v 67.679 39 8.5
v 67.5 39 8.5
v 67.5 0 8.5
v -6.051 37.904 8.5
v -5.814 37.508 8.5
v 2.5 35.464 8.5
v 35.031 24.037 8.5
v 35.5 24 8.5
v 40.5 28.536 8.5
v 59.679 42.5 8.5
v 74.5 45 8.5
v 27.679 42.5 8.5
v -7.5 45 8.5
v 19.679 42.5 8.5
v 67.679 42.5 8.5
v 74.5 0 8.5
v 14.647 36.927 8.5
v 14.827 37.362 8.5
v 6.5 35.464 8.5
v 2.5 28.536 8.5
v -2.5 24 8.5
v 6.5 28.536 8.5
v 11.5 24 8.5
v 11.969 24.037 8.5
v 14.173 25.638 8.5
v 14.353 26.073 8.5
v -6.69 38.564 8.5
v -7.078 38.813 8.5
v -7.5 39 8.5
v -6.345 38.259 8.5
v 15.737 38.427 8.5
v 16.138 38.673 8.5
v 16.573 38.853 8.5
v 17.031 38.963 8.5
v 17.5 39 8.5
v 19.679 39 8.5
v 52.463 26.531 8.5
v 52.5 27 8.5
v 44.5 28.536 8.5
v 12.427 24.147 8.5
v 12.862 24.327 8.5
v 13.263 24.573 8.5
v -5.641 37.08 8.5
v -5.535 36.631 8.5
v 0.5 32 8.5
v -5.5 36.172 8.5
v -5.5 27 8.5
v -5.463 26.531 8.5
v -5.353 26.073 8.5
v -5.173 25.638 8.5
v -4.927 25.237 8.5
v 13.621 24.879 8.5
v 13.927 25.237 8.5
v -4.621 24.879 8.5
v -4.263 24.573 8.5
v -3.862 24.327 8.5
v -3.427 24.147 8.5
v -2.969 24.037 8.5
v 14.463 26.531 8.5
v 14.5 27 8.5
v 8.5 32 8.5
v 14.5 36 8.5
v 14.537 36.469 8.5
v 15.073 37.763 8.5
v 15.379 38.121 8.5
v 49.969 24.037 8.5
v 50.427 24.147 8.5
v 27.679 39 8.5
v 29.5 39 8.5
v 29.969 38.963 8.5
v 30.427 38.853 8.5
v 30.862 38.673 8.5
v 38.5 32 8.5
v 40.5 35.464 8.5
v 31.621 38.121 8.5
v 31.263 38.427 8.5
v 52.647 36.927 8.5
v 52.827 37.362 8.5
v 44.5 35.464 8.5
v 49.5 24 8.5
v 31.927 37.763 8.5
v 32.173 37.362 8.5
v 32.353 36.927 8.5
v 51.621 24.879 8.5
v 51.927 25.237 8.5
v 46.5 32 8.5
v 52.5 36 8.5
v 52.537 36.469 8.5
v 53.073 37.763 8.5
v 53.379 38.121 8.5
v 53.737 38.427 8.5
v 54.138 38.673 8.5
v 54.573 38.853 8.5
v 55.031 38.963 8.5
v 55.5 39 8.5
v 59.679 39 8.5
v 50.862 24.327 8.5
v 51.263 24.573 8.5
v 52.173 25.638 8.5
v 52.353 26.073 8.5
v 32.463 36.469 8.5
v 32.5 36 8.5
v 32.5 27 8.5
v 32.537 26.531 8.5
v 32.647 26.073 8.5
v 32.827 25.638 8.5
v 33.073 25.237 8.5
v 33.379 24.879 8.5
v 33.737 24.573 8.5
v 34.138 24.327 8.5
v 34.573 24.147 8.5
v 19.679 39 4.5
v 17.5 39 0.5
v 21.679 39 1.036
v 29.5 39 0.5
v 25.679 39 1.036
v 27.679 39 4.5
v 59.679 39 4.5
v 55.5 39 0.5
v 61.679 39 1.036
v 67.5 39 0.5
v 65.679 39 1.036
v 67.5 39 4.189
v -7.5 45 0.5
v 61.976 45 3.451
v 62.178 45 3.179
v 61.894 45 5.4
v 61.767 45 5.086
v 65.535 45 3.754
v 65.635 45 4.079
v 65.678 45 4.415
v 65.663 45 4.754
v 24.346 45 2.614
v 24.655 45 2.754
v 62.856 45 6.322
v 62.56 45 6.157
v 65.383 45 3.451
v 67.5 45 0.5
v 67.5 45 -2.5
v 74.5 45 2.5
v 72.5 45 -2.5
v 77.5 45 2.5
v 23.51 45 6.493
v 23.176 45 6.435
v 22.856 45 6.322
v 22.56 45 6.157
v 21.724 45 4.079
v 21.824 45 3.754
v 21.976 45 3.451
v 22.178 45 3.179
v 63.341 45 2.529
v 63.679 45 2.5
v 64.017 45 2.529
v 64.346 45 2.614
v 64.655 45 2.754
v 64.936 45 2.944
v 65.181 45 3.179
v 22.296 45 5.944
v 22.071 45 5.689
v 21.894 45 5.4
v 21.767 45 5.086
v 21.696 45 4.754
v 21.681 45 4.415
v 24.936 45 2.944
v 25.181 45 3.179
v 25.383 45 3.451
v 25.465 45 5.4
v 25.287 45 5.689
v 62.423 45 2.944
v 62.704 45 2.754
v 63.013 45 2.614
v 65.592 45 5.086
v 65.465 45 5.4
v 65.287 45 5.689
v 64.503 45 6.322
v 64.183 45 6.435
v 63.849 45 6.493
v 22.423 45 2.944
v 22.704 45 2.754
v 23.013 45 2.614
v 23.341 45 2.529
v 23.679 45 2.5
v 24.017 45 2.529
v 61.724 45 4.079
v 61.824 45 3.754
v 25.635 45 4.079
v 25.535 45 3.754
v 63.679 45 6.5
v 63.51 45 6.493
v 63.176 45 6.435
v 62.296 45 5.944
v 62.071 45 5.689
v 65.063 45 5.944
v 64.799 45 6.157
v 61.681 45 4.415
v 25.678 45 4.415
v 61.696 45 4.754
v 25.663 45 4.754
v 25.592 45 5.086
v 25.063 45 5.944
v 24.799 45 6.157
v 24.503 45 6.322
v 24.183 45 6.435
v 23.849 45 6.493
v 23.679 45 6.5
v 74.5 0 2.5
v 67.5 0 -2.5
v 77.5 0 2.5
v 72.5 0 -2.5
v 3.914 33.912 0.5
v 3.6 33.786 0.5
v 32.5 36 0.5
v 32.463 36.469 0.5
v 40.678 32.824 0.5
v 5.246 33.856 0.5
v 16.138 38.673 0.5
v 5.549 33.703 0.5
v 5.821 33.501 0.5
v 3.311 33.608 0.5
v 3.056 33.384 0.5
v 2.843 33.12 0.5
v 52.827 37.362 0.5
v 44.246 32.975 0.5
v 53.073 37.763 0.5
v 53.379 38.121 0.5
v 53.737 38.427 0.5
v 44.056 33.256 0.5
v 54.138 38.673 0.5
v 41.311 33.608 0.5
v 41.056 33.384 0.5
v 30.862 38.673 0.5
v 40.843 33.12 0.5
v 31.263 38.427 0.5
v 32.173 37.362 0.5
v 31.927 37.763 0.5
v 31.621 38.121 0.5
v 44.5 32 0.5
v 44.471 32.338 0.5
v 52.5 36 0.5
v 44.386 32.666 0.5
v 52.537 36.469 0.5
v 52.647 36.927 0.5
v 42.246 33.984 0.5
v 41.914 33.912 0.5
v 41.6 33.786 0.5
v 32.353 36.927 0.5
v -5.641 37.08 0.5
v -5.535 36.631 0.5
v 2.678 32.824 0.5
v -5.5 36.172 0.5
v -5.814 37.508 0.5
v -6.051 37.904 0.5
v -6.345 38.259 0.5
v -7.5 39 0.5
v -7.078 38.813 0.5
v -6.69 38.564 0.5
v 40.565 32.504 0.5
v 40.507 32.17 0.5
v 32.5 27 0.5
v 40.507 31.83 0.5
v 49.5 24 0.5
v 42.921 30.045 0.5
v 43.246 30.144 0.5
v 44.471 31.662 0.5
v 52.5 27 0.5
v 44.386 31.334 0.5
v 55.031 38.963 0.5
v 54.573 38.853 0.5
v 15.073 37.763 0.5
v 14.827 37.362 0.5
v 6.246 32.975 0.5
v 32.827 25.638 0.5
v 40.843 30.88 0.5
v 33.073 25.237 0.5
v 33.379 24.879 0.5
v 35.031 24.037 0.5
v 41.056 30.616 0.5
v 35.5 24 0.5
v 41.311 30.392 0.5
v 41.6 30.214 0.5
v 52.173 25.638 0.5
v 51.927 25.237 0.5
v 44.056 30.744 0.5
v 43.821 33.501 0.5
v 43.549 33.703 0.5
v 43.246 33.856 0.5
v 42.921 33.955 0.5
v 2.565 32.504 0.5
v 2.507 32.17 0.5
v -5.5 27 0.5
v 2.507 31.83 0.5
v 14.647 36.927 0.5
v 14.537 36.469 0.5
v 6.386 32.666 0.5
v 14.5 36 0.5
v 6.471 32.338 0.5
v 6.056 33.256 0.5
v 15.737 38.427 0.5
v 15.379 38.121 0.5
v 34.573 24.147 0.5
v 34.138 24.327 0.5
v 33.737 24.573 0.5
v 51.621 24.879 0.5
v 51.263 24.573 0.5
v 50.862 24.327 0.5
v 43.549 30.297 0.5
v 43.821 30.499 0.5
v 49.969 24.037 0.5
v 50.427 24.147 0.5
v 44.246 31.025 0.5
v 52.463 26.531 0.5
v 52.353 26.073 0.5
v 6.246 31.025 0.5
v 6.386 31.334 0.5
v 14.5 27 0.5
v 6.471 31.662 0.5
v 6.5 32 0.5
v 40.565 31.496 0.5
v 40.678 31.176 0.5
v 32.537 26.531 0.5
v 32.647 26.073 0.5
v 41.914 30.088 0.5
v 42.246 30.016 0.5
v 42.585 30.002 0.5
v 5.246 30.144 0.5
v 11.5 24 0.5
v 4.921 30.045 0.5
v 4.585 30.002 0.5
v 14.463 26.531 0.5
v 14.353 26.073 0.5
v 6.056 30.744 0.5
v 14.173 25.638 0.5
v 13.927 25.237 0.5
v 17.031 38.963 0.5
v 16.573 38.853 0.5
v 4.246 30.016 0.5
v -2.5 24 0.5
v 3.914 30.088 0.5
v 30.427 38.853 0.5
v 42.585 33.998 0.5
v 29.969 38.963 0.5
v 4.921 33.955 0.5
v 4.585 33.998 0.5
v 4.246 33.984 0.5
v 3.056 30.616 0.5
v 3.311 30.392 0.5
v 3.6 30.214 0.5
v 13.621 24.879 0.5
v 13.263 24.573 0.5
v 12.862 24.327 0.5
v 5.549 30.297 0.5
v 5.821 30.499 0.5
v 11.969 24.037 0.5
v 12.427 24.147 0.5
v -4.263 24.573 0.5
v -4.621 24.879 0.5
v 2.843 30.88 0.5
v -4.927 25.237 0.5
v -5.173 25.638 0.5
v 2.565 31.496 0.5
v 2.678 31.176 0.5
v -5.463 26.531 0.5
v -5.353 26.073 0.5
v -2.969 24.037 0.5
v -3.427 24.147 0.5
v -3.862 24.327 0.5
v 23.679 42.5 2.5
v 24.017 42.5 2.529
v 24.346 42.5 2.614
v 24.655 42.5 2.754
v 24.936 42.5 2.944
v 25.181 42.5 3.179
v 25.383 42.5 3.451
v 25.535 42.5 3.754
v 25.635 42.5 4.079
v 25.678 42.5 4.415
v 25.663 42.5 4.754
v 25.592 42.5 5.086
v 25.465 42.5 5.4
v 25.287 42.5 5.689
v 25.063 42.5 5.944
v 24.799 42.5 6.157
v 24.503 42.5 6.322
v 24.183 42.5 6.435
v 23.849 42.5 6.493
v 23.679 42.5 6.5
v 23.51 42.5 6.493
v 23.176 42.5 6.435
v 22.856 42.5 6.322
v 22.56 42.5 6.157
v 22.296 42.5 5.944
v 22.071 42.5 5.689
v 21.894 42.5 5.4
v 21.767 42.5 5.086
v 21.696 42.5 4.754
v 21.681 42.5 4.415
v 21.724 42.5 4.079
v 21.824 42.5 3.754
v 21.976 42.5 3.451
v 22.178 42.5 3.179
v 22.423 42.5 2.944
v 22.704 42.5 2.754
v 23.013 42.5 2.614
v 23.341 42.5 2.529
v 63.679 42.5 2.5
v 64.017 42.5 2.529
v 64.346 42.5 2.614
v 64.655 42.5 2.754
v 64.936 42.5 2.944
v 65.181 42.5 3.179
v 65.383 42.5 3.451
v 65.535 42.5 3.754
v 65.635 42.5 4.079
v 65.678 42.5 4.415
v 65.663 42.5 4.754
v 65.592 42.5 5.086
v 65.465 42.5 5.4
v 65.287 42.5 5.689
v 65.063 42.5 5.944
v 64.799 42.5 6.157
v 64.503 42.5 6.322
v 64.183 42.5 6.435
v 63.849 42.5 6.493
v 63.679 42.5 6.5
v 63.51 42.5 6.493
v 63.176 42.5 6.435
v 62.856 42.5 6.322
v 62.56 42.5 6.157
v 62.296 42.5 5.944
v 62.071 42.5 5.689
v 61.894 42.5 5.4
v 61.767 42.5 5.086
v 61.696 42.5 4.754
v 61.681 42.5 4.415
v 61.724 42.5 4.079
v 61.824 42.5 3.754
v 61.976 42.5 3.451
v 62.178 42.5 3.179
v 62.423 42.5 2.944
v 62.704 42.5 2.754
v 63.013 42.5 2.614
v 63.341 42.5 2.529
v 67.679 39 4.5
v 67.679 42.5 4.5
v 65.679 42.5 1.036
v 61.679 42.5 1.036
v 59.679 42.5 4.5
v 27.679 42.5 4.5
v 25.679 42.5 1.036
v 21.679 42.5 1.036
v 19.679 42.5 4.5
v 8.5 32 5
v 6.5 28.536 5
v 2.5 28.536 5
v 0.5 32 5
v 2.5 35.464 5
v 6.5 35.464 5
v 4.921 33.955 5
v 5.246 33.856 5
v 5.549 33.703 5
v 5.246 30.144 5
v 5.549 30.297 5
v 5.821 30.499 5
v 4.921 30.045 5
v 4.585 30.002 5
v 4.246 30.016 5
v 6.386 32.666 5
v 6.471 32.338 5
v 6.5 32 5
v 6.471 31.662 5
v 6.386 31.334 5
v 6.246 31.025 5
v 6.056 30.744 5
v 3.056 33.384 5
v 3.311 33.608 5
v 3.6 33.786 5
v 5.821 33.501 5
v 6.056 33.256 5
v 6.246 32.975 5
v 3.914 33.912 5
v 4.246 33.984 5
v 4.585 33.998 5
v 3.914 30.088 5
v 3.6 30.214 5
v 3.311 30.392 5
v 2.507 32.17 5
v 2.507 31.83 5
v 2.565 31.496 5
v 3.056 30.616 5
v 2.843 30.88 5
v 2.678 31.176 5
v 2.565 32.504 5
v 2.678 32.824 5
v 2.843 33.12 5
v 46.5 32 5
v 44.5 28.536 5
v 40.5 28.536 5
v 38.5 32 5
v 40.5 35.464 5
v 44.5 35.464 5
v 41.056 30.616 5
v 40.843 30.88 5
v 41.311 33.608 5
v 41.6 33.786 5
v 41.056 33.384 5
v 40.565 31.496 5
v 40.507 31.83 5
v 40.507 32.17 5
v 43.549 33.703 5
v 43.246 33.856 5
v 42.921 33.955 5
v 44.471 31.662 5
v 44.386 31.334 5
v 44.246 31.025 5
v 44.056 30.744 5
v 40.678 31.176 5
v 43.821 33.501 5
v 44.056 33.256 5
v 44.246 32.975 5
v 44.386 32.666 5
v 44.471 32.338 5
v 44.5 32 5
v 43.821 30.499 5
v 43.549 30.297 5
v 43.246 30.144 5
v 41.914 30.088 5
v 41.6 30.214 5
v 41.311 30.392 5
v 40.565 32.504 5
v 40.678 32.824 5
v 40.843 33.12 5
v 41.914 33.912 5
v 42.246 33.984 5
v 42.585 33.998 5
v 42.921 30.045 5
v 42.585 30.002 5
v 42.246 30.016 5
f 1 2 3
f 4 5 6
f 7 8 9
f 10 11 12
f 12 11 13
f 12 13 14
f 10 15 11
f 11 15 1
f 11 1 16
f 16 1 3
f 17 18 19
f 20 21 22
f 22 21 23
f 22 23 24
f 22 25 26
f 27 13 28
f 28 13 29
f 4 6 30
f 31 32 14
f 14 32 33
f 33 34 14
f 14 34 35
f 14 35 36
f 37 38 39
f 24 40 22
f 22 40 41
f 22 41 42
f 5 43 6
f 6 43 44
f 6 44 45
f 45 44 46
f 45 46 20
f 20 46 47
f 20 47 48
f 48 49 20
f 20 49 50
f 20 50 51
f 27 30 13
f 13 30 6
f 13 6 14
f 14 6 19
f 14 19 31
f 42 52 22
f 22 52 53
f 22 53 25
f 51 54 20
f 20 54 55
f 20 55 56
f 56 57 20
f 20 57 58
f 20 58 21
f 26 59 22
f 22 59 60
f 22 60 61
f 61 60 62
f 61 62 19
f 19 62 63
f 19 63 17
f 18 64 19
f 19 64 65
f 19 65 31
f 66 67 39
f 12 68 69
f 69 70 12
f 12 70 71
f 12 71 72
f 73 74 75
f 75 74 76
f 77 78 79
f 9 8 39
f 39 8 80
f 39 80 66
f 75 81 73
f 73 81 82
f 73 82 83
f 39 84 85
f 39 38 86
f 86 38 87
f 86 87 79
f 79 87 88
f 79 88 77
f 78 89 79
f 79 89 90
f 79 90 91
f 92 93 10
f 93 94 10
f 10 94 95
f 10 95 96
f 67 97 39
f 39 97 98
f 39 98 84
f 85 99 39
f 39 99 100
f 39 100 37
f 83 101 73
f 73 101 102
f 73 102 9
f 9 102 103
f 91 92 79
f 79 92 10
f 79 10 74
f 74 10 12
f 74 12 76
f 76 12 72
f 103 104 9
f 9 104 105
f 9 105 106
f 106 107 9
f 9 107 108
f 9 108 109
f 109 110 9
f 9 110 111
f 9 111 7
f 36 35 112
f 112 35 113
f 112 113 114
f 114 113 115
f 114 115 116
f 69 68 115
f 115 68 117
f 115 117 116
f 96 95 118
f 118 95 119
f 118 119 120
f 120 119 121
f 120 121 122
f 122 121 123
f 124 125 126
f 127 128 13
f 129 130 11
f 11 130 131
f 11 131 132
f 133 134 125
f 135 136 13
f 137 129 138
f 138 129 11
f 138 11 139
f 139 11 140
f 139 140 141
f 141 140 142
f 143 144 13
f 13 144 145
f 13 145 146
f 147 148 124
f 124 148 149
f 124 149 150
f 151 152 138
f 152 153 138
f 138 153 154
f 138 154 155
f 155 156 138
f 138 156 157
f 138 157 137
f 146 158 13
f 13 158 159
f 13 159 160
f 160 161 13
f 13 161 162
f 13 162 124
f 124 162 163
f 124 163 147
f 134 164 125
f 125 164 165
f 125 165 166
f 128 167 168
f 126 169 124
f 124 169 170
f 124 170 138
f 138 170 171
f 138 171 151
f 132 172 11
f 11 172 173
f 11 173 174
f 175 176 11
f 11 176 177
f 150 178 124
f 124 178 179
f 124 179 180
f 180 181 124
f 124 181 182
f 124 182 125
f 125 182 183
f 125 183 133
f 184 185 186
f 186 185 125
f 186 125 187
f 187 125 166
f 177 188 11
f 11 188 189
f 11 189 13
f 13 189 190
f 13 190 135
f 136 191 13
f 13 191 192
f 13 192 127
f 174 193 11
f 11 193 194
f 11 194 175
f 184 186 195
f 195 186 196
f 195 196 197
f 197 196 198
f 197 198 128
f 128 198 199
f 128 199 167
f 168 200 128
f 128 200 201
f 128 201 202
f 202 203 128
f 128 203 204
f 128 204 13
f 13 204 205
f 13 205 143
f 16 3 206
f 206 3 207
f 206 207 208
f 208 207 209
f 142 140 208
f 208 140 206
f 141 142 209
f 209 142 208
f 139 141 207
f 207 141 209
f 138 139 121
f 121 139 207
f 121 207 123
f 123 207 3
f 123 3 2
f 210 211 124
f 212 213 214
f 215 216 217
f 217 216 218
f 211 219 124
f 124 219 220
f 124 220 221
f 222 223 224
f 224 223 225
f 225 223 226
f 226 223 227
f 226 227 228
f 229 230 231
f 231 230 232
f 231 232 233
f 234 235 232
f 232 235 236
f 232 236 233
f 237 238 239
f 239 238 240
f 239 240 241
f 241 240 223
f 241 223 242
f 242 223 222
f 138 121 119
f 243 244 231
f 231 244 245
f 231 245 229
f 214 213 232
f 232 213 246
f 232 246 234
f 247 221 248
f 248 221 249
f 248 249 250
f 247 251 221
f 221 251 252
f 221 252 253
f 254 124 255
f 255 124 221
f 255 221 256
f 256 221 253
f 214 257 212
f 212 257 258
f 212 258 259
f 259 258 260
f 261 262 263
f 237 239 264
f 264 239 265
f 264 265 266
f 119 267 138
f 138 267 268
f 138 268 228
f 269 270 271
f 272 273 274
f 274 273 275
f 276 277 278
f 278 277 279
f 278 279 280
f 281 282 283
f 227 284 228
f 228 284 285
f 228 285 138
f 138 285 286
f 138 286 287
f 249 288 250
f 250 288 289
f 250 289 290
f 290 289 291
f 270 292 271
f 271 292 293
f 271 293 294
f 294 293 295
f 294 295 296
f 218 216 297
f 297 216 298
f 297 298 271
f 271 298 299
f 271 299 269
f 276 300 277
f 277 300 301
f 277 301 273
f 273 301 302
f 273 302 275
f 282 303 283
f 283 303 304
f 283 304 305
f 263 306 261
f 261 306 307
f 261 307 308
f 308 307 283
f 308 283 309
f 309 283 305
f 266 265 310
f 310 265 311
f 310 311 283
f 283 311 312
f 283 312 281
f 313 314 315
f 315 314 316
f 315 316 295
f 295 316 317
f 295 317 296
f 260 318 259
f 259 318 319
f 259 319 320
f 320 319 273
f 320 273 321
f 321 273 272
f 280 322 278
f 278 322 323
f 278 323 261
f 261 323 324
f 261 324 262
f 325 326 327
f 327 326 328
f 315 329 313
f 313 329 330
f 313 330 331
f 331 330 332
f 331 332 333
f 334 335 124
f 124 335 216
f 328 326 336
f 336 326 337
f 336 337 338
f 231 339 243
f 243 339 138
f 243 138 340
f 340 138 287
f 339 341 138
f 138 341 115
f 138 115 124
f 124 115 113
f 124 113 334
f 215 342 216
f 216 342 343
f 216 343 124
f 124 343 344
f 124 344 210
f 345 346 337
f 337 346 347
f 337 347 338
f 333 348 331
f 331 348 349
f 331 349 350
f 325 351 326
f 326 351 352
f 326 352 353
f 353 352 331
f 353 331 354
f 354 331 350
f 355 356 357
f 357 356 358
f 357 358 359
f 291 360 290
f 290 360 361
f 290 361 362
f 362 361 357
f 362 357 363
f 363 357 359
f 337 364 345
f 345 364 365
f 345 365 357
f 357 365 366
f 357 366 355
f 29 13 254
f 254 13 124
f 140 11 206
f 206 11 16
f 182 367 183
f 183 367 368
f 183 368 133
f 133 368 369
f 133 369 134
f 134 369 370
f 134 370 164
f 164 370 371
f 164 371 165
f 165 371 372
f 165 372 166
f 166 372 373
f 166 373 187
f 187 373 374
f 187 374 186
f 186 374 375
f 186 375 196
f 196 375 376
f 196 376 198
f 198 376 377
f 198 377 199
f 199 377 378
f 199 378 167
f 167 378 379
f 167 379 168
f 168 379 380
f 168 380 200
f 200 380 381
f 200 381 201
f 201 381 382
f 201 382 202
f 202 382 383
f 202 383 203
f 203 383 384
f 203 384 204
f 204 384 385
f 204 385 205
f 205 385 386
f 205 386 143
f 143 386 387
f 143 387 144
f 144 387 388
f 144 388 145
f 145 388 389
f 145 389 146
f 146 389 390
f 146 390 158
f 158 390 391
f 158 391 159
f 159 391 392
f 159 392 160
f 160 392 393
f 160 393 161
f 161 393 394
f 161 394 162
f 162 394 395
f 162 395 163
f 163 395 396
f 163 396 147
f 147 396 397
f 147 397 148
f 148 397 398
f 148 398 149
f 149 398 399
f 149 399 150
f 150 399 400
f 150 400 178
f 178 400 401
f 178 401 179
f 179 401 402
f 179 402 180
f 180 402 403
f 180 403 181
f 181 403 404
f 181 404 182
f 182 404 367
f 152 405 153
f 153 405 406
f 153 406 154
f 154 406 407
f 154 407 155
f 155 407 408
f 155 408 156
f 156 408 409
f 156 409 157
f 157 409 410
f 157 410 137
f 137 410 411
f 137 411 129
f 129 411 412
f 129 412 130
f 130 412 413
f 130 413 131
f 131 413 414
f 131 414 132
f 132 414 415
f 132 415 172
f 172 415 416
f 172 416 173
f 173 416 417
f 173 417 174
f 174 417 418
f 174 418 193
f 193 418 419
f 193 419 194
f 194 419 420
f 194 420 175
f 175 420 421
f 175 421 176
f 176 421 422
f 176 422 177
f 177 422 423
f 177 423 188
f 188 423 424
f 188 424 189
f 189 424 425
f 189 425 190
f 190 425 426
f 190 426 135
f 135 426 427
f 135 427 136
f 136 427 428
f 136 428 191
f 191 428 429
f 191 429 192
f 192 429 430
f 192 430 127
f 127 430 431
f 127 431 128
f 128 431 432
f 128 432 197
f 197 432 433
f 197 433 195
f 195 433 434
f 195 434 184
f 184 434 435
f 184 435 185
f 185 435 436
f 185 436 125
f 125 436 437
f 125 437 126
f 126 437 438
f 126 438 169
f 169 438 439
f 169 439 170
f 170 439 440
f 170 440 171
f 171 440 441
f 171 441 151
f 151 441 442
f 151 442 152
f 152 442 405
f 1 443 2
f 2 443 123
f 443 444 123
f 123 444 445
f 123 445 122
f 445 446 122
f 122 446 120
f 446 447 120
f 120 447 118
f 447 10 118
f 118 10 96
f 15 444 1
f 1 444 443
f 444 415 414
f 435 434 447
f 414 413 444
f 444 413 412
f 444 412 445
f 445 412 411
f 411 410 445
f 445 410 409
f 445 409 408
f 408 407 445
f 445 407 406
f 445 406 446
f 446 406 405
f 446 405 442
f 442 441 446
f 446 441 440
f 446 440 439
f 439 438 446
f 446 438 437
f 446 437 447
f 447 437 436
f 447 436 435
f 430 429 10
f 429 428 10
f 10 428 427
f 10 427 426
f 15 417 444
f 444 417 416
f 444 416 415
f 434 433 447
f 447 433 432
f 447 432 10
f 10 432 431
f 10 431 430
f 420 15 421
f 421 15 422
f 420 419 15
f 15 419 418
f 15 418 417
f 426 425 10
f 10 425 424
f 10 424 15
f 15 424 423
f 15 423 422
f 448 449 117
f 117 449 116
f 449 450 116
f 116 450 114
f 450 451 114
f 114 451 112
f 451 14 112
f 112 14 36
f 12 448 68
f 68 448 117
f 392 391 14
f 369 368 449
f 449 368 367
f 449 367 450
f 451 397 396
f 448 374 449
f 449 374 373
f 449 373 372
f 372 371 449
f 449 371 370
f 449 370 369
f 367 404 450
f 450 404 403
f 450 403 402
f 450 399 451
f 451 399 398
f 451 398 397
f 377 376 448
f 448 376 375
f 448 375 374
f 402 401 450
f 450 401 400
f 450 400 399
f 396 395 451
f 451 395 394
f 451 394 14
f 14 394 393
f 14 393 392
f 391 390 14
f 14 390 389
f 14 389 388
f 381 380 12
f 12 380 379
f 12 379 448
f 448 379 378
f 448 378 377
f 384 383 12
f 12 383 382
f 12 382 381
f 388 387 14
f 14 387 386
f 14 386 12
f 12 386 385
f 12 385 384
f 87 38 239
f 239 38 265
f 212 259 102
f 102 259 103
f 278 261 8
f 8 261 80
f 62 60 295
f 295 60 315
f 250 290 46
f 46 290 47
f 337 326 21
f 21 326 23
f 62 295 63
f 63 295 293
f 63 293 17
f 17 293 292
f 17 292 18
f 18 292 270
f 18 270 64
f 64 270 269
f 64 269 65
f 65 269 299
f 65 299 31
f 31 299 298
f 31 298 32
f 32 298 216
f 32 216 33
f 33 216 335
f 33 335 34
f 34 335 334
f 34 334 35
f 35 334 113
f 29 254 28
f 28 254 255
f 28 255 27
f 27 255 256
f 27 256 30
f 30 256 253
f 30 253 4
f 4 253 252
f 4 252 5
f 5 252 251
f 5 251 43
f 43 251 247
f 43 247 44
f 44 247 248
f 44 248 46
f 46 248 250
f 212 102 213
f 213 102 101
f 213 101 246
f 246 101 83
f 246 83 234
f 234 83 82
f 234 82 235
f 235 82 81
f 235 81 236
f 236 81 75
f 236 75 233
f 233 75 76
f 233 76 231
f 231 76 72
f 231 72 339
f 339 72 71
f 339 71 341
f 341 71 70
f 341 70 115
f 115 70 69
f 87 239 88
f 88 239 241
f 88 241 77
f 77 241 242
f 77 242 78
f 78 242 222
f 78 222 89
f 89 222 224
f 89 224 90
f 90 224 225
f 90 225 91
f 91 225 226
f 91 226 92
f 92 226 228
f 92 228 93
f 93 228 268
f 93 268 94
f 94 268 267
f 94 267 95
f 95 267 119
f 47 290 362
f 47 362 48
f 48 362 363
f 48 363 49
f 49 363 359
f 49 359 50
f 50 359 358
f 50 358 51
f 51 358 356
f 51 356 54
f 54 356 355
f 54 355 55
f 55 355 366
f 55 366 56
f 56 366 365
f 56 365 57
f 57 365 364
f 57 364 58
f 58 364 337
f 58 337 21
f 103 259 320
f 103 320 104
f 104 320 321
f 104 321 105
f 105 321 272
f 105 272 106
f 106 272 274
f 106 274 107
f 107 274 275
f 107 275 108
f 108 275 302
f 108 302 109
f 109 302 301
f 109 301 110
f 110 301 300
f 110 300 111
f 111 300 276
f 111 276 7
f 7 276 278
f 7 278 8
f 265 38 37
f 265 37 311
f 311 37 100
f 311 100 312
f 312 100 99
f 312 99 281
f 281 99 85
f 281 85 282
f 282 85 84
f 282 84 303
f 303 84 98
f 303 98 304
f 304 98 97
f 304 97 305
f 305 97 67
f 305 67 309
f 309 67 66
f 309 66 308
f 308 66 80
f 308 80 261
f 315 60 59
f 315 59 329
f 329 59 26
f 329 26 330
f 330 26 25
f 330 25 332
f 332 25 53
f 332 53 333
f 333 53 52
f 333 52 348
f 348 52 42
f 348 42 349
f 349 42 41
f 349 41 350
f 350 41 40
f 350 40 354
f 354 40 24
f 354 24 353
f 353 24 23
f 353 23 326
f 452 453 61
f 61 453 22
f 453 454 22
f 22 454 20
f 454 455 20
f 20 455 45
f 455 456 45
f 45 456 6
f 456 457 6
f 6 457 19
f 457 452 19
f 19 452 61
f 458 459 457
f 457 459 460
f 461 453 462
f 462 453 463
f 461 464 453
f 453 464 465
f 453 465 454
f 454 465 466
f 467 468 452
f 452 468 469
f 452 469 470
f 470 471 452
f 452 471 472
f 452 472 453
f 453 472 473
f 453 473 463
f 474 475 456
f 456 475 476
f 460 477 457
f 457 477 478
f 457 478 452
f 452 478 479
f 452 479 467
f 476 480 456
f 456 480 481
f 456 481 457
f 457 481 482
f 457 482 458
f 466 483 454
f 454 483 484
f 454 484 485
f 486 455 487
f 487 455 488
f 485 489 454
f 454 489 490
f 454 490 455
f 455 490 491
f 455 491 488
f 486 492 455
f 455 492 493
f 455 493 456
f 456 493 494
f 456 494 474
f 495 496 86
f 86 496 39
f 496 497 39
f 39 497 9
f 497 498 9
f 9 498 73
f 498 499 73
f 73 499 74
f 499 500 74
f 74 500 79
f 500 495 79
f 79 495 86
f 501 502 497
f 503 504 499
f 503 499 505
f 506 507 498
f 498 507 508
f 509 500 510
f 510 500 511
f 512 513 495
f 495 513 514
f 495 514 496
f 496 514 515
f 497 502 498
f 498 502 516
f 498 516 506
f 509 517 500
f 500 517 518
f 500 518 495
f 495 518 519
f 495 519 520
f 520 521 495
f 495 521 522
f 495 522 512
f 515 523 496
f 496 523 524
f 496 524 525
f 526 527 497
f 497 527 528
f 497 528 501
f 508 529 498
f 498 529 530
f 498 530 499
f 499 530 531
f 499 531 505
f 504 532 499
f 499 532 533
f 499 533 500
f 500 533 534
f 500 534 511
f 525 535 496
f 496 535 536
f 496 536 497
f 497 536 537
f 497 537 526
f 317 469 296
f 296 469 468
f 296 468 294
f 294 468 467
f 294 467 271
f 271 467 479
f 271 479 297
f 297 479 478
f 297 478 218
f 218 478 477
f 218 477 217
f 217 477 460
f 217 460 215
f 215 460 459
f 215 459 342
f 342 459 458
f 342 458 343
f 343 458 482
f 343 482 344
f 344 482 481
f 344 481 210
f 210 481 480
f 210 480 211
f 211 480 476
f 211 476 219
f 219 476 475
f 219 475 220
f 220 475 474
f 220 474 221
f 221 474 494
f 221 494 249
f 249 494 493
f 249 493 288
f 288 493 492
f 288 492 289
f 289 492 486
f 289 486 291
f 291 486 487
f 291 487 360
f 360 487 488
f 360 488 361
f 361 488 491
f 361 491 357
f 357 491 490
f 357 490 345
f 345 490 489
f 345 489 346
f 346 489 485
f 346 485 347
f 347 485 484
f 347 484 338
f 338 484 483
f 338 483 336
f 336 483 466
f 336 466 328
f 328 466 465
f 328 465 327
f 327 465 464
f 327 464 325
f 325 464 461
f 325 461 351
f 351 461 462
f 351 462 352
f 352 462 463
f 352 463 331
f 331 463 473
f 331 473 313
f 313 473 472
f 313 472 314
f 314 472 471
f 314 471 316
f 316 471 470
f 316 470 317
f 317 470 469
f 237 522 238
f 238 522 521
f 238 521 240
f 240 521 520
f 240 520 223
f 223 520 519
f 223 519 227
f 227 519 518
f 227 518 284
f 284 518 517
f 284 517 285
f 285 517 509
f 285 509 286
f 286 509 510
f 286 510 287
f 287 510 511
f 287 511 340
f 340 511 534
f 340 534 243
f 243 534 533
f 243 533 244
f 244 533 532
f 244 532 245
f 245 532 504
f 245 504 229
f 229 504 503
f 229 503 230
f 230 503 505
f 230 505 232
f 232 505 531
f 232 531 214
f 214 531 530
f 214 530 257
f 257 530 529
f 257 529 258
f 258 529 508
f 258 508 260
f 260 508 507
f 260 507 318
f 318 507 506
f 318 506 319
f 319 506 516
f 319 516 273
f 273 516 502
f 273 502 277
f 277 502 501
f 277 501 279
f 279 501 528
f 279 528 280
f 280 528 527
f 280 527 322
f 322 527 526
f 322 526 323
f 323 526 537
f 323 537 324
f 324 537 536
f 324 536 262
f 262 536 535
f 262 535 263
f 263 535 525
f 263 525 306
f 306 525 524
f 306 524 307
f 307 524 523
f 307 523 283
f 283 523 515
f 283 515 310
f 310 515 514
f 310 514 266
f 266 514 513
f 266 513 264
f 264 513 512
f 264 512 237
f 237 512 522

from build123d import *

# Parameters (mm, degrees)
ESQUISSE1_R                  = 2
BOSS_EXTRU_1_DEPTH           = 45
ESQUISSE2_W                  = 75
ESQUISSE2_H                  = 39
ENL_V_MAT_EXTRU_1_DEPTH      = 45
ENL_V_MAT_EXTRU_2_DEPTH      = 3.5
ESQUISSE4_W                  = 20
ESQUISSE4_H                  = 8
BOSS_EXTRU_2_DEPTH           = 15
CONG_1_R                     = 3
ENL_V_MAT_EXTRU_3_DEPTH      = 3.5
ENL_V_MAT_EXTRU_4_DEPTH      = 90.930528743
ENL_V_MAT_EXTRU_4_DEPTH_BACK = 90.930528743
ESQUISSE7_R                  = 2


with BuildPart() as part:
    # Esquisse1 → Boss.-Extru.1 (new body)
    with BuildSketch(Plane(origin=(0, 0, 0), x_dir=(1, 0, 0), z_dir=(0, 1, 0))):
        Polygon((77.5, -2.5), (72.5, 2.5), (67.5, 2.5), (67.5, -0.5), (-7.5, -0.5), (-7.5, -8.5), (74.5, -8.5), (74.5, -2.5), align=None)
        with Locations(Location((63.679491924, -4.5, 0), (0, 0, 90))):
            Circle(ESQUISSE1_R, mode=Mode.SUBTRACT)
        with Locations(Location((23.679491924, -4.5, 0), (0, 0, 90))):
            Circle(ESQUISSE1_R, mode=Mode.SUBTRACT)
    extrude(amount=BOSS_EXTRU_1_DEPTH)

    # Esquisse2 → Enlèv. mat.-Extru.1 (cut)
    with BuildSketch(Plane(origin=(0, 0, 0.5), x_dir=(-1, 0, 0), z_dir=(0, 0, -1))):
        with Locations((-30, 19.5)):
            Rectangle(ESQUISSE2_W, ESQUISSE2_H)
    extrude(amount=-ENL_V_MAT_EXTRU_1_DEPTH, mode=Mode.SUBTRACT)

    # Esquisse3 → Enlèv. mat.-Extru.2 (cut)
    with BuildSketch(Plane.XZ.offset(-39)):
        Polygon((65.679491924, 1.035898385), (61.679491924, 1.035898385), (59.679491924, 4.5), (59.679491924, 8.5), (67.679491924, 8.5), (67.679491924, 4.5), align=None)
        Polygon((25.679491924, 1.035898385), (21.679491924, 1.035898385), (19.679491924, 4.5), (19.679491924, 8.5), (27.679491924, 8.5), (27.679491924, 4.5), align=None)
    extrude(amount=-ENL_V_MAT_EXTRU_2_DEPTH, mode=Mode.SUBTRACT)

    # Esquisse4 → Boss.-Extru.2 (add)
    with BuildSketch(Plane.XZ.offset(-39)):
        with Locations((42.5, 4.5)):
            Rectangle(ESQUISSE4_W, ESQUISSE4_H)
        with Locations((4.5, 4.5)):
            Rectangle(ESQUISSE4_W, ESQUISSE4_H)
    extrude(amount=BOSS_EXTRU_2_DEPTH)

    # Congé1
    # the kernel refuses this fillet: 3 mm, written as the material it adds along each edge
    with BuildSketch(Plane(origin=(52.5, 39, 0.5), x_dir=(1, 0, 0), z_dir=(0, 0, 1)), Plane(origin=(32.5, 39, 8.5), x_dir=(-1, 0, 0), z_dir=(0, 0, -1)), Plane(origin=(14.5, 39, 0.5), x_dir=(1, 0, 0), z_dir=(0, 0, 1))) as cong_1_piece_1:
        with BuildLine():
            CenterArc((CONG_1_R, -CONG_1_R), CONG_1_R, 90, 90)
            Line((0, -CONG_1_R), (0, 0))
            Line((0, 0), (CONG_1_R, 0))
        make_face()
    extrude(amount=8)
    with BuildSketch(Plane(origin=(-5.5, 39, 8.5), x_dir=(-1, 0, 0), z_dir=(0, 0, -1))) as cong_1_piece_2:
        with BuildLine():
            CenterArc((3, -2.828427125), CONG_1_R, 109.471220634, 70.528779366)
            Line((0, -2.828427125), (0, 0))
            Line((0, 0), (2, 0))
        make_face()
    extrude(amount=8)
    # the kernel refuses this fillet: 3 mm, written as the material it takes off along each edge
    with BuildSketch(Plane(origin=(52.5, 24, -7), x_dir=(0, 1, 0), z_dir=(0, 0, 1)), Plane(origin=(14.5, 24, -7), x_dir=(0, 1, 0), z_dir=(0, 0, 1))) as cong_1_2_piece_1:
        with BuildLine():
            CenterArc((CONG_1_R, CONG_1_R), CONG_1_R, 180, 90)
            Line((0, CONG_1_R), (0, 0))
            Line((0, 0), (CONG_1_R, 0))
        make_face()
    extrude(amount=23, mode=Mode.SUBTRACT)
    with BuildSketch(Plane(origin=(32.5, 24, 16), x_dir=(1, 0, 0), z_dir=(0, 0, -1)), Plane(origin=(-5.5, 24, 16), x_dir=(1, 0, 0), z_dir=(0, 0, -1))) as cong_1_2_piece_2:
        with BuildLine():
            CenterArc((CONG_1_R, -CONG_1_R), CONG_1_R, 90, 90)
            Line((0, -CONG_1_R), (0, 0))
            Line((0, 0), (CONG_1_R, 0))
        make_face()
    extrude(amount=23, mode=Mode.SUBTRACT)

    # Esquisse5 → Enlèv. mat.-Extru.3 (cut)
    with BuildSketch(Plane.XY.offset(8.5)):
        Polygon((8.5, 32), (6.5, 28.535898385), (2.5, 28.535898385), (0.5, 32), (2.5, 35.464101615), (6.5, 35.464101615), align=None)
        Polygon((46.5, 32), (44.5, 28.535898385), (40.5, 28.535898385), (38.5, 32), (40.5, 35.464101615), (44.5, 35.464101615), align=None)
    extrude(amount=-ENL_V_MAT_EXTRU_3_DEPTH, mode=Mode.SUBTRACT)

    # Esquisse7 → Enlèv. mat.-Extru.4 (cut, two sides: drawn at the far end of the back side and taken through both)
    with BuildSketch(Plane.XY.offset(5).offset(-ENL_V_MAT_EXTRU_4_DEPTH_BACK)):
        with Locations((4.5, 32)):
            Circle(ESQUISSE7_R)
        with Locations((42.5, 32)):
            Circle(ESQUISSE7_R)
    extrude(amount=ENL_V_MAT_EXTRU_4_DEPTH + ENL_V_MAT_EXTRU_4_DEPTH_BACK, mode=Mode.SUBTRACT)


solid = part.part
